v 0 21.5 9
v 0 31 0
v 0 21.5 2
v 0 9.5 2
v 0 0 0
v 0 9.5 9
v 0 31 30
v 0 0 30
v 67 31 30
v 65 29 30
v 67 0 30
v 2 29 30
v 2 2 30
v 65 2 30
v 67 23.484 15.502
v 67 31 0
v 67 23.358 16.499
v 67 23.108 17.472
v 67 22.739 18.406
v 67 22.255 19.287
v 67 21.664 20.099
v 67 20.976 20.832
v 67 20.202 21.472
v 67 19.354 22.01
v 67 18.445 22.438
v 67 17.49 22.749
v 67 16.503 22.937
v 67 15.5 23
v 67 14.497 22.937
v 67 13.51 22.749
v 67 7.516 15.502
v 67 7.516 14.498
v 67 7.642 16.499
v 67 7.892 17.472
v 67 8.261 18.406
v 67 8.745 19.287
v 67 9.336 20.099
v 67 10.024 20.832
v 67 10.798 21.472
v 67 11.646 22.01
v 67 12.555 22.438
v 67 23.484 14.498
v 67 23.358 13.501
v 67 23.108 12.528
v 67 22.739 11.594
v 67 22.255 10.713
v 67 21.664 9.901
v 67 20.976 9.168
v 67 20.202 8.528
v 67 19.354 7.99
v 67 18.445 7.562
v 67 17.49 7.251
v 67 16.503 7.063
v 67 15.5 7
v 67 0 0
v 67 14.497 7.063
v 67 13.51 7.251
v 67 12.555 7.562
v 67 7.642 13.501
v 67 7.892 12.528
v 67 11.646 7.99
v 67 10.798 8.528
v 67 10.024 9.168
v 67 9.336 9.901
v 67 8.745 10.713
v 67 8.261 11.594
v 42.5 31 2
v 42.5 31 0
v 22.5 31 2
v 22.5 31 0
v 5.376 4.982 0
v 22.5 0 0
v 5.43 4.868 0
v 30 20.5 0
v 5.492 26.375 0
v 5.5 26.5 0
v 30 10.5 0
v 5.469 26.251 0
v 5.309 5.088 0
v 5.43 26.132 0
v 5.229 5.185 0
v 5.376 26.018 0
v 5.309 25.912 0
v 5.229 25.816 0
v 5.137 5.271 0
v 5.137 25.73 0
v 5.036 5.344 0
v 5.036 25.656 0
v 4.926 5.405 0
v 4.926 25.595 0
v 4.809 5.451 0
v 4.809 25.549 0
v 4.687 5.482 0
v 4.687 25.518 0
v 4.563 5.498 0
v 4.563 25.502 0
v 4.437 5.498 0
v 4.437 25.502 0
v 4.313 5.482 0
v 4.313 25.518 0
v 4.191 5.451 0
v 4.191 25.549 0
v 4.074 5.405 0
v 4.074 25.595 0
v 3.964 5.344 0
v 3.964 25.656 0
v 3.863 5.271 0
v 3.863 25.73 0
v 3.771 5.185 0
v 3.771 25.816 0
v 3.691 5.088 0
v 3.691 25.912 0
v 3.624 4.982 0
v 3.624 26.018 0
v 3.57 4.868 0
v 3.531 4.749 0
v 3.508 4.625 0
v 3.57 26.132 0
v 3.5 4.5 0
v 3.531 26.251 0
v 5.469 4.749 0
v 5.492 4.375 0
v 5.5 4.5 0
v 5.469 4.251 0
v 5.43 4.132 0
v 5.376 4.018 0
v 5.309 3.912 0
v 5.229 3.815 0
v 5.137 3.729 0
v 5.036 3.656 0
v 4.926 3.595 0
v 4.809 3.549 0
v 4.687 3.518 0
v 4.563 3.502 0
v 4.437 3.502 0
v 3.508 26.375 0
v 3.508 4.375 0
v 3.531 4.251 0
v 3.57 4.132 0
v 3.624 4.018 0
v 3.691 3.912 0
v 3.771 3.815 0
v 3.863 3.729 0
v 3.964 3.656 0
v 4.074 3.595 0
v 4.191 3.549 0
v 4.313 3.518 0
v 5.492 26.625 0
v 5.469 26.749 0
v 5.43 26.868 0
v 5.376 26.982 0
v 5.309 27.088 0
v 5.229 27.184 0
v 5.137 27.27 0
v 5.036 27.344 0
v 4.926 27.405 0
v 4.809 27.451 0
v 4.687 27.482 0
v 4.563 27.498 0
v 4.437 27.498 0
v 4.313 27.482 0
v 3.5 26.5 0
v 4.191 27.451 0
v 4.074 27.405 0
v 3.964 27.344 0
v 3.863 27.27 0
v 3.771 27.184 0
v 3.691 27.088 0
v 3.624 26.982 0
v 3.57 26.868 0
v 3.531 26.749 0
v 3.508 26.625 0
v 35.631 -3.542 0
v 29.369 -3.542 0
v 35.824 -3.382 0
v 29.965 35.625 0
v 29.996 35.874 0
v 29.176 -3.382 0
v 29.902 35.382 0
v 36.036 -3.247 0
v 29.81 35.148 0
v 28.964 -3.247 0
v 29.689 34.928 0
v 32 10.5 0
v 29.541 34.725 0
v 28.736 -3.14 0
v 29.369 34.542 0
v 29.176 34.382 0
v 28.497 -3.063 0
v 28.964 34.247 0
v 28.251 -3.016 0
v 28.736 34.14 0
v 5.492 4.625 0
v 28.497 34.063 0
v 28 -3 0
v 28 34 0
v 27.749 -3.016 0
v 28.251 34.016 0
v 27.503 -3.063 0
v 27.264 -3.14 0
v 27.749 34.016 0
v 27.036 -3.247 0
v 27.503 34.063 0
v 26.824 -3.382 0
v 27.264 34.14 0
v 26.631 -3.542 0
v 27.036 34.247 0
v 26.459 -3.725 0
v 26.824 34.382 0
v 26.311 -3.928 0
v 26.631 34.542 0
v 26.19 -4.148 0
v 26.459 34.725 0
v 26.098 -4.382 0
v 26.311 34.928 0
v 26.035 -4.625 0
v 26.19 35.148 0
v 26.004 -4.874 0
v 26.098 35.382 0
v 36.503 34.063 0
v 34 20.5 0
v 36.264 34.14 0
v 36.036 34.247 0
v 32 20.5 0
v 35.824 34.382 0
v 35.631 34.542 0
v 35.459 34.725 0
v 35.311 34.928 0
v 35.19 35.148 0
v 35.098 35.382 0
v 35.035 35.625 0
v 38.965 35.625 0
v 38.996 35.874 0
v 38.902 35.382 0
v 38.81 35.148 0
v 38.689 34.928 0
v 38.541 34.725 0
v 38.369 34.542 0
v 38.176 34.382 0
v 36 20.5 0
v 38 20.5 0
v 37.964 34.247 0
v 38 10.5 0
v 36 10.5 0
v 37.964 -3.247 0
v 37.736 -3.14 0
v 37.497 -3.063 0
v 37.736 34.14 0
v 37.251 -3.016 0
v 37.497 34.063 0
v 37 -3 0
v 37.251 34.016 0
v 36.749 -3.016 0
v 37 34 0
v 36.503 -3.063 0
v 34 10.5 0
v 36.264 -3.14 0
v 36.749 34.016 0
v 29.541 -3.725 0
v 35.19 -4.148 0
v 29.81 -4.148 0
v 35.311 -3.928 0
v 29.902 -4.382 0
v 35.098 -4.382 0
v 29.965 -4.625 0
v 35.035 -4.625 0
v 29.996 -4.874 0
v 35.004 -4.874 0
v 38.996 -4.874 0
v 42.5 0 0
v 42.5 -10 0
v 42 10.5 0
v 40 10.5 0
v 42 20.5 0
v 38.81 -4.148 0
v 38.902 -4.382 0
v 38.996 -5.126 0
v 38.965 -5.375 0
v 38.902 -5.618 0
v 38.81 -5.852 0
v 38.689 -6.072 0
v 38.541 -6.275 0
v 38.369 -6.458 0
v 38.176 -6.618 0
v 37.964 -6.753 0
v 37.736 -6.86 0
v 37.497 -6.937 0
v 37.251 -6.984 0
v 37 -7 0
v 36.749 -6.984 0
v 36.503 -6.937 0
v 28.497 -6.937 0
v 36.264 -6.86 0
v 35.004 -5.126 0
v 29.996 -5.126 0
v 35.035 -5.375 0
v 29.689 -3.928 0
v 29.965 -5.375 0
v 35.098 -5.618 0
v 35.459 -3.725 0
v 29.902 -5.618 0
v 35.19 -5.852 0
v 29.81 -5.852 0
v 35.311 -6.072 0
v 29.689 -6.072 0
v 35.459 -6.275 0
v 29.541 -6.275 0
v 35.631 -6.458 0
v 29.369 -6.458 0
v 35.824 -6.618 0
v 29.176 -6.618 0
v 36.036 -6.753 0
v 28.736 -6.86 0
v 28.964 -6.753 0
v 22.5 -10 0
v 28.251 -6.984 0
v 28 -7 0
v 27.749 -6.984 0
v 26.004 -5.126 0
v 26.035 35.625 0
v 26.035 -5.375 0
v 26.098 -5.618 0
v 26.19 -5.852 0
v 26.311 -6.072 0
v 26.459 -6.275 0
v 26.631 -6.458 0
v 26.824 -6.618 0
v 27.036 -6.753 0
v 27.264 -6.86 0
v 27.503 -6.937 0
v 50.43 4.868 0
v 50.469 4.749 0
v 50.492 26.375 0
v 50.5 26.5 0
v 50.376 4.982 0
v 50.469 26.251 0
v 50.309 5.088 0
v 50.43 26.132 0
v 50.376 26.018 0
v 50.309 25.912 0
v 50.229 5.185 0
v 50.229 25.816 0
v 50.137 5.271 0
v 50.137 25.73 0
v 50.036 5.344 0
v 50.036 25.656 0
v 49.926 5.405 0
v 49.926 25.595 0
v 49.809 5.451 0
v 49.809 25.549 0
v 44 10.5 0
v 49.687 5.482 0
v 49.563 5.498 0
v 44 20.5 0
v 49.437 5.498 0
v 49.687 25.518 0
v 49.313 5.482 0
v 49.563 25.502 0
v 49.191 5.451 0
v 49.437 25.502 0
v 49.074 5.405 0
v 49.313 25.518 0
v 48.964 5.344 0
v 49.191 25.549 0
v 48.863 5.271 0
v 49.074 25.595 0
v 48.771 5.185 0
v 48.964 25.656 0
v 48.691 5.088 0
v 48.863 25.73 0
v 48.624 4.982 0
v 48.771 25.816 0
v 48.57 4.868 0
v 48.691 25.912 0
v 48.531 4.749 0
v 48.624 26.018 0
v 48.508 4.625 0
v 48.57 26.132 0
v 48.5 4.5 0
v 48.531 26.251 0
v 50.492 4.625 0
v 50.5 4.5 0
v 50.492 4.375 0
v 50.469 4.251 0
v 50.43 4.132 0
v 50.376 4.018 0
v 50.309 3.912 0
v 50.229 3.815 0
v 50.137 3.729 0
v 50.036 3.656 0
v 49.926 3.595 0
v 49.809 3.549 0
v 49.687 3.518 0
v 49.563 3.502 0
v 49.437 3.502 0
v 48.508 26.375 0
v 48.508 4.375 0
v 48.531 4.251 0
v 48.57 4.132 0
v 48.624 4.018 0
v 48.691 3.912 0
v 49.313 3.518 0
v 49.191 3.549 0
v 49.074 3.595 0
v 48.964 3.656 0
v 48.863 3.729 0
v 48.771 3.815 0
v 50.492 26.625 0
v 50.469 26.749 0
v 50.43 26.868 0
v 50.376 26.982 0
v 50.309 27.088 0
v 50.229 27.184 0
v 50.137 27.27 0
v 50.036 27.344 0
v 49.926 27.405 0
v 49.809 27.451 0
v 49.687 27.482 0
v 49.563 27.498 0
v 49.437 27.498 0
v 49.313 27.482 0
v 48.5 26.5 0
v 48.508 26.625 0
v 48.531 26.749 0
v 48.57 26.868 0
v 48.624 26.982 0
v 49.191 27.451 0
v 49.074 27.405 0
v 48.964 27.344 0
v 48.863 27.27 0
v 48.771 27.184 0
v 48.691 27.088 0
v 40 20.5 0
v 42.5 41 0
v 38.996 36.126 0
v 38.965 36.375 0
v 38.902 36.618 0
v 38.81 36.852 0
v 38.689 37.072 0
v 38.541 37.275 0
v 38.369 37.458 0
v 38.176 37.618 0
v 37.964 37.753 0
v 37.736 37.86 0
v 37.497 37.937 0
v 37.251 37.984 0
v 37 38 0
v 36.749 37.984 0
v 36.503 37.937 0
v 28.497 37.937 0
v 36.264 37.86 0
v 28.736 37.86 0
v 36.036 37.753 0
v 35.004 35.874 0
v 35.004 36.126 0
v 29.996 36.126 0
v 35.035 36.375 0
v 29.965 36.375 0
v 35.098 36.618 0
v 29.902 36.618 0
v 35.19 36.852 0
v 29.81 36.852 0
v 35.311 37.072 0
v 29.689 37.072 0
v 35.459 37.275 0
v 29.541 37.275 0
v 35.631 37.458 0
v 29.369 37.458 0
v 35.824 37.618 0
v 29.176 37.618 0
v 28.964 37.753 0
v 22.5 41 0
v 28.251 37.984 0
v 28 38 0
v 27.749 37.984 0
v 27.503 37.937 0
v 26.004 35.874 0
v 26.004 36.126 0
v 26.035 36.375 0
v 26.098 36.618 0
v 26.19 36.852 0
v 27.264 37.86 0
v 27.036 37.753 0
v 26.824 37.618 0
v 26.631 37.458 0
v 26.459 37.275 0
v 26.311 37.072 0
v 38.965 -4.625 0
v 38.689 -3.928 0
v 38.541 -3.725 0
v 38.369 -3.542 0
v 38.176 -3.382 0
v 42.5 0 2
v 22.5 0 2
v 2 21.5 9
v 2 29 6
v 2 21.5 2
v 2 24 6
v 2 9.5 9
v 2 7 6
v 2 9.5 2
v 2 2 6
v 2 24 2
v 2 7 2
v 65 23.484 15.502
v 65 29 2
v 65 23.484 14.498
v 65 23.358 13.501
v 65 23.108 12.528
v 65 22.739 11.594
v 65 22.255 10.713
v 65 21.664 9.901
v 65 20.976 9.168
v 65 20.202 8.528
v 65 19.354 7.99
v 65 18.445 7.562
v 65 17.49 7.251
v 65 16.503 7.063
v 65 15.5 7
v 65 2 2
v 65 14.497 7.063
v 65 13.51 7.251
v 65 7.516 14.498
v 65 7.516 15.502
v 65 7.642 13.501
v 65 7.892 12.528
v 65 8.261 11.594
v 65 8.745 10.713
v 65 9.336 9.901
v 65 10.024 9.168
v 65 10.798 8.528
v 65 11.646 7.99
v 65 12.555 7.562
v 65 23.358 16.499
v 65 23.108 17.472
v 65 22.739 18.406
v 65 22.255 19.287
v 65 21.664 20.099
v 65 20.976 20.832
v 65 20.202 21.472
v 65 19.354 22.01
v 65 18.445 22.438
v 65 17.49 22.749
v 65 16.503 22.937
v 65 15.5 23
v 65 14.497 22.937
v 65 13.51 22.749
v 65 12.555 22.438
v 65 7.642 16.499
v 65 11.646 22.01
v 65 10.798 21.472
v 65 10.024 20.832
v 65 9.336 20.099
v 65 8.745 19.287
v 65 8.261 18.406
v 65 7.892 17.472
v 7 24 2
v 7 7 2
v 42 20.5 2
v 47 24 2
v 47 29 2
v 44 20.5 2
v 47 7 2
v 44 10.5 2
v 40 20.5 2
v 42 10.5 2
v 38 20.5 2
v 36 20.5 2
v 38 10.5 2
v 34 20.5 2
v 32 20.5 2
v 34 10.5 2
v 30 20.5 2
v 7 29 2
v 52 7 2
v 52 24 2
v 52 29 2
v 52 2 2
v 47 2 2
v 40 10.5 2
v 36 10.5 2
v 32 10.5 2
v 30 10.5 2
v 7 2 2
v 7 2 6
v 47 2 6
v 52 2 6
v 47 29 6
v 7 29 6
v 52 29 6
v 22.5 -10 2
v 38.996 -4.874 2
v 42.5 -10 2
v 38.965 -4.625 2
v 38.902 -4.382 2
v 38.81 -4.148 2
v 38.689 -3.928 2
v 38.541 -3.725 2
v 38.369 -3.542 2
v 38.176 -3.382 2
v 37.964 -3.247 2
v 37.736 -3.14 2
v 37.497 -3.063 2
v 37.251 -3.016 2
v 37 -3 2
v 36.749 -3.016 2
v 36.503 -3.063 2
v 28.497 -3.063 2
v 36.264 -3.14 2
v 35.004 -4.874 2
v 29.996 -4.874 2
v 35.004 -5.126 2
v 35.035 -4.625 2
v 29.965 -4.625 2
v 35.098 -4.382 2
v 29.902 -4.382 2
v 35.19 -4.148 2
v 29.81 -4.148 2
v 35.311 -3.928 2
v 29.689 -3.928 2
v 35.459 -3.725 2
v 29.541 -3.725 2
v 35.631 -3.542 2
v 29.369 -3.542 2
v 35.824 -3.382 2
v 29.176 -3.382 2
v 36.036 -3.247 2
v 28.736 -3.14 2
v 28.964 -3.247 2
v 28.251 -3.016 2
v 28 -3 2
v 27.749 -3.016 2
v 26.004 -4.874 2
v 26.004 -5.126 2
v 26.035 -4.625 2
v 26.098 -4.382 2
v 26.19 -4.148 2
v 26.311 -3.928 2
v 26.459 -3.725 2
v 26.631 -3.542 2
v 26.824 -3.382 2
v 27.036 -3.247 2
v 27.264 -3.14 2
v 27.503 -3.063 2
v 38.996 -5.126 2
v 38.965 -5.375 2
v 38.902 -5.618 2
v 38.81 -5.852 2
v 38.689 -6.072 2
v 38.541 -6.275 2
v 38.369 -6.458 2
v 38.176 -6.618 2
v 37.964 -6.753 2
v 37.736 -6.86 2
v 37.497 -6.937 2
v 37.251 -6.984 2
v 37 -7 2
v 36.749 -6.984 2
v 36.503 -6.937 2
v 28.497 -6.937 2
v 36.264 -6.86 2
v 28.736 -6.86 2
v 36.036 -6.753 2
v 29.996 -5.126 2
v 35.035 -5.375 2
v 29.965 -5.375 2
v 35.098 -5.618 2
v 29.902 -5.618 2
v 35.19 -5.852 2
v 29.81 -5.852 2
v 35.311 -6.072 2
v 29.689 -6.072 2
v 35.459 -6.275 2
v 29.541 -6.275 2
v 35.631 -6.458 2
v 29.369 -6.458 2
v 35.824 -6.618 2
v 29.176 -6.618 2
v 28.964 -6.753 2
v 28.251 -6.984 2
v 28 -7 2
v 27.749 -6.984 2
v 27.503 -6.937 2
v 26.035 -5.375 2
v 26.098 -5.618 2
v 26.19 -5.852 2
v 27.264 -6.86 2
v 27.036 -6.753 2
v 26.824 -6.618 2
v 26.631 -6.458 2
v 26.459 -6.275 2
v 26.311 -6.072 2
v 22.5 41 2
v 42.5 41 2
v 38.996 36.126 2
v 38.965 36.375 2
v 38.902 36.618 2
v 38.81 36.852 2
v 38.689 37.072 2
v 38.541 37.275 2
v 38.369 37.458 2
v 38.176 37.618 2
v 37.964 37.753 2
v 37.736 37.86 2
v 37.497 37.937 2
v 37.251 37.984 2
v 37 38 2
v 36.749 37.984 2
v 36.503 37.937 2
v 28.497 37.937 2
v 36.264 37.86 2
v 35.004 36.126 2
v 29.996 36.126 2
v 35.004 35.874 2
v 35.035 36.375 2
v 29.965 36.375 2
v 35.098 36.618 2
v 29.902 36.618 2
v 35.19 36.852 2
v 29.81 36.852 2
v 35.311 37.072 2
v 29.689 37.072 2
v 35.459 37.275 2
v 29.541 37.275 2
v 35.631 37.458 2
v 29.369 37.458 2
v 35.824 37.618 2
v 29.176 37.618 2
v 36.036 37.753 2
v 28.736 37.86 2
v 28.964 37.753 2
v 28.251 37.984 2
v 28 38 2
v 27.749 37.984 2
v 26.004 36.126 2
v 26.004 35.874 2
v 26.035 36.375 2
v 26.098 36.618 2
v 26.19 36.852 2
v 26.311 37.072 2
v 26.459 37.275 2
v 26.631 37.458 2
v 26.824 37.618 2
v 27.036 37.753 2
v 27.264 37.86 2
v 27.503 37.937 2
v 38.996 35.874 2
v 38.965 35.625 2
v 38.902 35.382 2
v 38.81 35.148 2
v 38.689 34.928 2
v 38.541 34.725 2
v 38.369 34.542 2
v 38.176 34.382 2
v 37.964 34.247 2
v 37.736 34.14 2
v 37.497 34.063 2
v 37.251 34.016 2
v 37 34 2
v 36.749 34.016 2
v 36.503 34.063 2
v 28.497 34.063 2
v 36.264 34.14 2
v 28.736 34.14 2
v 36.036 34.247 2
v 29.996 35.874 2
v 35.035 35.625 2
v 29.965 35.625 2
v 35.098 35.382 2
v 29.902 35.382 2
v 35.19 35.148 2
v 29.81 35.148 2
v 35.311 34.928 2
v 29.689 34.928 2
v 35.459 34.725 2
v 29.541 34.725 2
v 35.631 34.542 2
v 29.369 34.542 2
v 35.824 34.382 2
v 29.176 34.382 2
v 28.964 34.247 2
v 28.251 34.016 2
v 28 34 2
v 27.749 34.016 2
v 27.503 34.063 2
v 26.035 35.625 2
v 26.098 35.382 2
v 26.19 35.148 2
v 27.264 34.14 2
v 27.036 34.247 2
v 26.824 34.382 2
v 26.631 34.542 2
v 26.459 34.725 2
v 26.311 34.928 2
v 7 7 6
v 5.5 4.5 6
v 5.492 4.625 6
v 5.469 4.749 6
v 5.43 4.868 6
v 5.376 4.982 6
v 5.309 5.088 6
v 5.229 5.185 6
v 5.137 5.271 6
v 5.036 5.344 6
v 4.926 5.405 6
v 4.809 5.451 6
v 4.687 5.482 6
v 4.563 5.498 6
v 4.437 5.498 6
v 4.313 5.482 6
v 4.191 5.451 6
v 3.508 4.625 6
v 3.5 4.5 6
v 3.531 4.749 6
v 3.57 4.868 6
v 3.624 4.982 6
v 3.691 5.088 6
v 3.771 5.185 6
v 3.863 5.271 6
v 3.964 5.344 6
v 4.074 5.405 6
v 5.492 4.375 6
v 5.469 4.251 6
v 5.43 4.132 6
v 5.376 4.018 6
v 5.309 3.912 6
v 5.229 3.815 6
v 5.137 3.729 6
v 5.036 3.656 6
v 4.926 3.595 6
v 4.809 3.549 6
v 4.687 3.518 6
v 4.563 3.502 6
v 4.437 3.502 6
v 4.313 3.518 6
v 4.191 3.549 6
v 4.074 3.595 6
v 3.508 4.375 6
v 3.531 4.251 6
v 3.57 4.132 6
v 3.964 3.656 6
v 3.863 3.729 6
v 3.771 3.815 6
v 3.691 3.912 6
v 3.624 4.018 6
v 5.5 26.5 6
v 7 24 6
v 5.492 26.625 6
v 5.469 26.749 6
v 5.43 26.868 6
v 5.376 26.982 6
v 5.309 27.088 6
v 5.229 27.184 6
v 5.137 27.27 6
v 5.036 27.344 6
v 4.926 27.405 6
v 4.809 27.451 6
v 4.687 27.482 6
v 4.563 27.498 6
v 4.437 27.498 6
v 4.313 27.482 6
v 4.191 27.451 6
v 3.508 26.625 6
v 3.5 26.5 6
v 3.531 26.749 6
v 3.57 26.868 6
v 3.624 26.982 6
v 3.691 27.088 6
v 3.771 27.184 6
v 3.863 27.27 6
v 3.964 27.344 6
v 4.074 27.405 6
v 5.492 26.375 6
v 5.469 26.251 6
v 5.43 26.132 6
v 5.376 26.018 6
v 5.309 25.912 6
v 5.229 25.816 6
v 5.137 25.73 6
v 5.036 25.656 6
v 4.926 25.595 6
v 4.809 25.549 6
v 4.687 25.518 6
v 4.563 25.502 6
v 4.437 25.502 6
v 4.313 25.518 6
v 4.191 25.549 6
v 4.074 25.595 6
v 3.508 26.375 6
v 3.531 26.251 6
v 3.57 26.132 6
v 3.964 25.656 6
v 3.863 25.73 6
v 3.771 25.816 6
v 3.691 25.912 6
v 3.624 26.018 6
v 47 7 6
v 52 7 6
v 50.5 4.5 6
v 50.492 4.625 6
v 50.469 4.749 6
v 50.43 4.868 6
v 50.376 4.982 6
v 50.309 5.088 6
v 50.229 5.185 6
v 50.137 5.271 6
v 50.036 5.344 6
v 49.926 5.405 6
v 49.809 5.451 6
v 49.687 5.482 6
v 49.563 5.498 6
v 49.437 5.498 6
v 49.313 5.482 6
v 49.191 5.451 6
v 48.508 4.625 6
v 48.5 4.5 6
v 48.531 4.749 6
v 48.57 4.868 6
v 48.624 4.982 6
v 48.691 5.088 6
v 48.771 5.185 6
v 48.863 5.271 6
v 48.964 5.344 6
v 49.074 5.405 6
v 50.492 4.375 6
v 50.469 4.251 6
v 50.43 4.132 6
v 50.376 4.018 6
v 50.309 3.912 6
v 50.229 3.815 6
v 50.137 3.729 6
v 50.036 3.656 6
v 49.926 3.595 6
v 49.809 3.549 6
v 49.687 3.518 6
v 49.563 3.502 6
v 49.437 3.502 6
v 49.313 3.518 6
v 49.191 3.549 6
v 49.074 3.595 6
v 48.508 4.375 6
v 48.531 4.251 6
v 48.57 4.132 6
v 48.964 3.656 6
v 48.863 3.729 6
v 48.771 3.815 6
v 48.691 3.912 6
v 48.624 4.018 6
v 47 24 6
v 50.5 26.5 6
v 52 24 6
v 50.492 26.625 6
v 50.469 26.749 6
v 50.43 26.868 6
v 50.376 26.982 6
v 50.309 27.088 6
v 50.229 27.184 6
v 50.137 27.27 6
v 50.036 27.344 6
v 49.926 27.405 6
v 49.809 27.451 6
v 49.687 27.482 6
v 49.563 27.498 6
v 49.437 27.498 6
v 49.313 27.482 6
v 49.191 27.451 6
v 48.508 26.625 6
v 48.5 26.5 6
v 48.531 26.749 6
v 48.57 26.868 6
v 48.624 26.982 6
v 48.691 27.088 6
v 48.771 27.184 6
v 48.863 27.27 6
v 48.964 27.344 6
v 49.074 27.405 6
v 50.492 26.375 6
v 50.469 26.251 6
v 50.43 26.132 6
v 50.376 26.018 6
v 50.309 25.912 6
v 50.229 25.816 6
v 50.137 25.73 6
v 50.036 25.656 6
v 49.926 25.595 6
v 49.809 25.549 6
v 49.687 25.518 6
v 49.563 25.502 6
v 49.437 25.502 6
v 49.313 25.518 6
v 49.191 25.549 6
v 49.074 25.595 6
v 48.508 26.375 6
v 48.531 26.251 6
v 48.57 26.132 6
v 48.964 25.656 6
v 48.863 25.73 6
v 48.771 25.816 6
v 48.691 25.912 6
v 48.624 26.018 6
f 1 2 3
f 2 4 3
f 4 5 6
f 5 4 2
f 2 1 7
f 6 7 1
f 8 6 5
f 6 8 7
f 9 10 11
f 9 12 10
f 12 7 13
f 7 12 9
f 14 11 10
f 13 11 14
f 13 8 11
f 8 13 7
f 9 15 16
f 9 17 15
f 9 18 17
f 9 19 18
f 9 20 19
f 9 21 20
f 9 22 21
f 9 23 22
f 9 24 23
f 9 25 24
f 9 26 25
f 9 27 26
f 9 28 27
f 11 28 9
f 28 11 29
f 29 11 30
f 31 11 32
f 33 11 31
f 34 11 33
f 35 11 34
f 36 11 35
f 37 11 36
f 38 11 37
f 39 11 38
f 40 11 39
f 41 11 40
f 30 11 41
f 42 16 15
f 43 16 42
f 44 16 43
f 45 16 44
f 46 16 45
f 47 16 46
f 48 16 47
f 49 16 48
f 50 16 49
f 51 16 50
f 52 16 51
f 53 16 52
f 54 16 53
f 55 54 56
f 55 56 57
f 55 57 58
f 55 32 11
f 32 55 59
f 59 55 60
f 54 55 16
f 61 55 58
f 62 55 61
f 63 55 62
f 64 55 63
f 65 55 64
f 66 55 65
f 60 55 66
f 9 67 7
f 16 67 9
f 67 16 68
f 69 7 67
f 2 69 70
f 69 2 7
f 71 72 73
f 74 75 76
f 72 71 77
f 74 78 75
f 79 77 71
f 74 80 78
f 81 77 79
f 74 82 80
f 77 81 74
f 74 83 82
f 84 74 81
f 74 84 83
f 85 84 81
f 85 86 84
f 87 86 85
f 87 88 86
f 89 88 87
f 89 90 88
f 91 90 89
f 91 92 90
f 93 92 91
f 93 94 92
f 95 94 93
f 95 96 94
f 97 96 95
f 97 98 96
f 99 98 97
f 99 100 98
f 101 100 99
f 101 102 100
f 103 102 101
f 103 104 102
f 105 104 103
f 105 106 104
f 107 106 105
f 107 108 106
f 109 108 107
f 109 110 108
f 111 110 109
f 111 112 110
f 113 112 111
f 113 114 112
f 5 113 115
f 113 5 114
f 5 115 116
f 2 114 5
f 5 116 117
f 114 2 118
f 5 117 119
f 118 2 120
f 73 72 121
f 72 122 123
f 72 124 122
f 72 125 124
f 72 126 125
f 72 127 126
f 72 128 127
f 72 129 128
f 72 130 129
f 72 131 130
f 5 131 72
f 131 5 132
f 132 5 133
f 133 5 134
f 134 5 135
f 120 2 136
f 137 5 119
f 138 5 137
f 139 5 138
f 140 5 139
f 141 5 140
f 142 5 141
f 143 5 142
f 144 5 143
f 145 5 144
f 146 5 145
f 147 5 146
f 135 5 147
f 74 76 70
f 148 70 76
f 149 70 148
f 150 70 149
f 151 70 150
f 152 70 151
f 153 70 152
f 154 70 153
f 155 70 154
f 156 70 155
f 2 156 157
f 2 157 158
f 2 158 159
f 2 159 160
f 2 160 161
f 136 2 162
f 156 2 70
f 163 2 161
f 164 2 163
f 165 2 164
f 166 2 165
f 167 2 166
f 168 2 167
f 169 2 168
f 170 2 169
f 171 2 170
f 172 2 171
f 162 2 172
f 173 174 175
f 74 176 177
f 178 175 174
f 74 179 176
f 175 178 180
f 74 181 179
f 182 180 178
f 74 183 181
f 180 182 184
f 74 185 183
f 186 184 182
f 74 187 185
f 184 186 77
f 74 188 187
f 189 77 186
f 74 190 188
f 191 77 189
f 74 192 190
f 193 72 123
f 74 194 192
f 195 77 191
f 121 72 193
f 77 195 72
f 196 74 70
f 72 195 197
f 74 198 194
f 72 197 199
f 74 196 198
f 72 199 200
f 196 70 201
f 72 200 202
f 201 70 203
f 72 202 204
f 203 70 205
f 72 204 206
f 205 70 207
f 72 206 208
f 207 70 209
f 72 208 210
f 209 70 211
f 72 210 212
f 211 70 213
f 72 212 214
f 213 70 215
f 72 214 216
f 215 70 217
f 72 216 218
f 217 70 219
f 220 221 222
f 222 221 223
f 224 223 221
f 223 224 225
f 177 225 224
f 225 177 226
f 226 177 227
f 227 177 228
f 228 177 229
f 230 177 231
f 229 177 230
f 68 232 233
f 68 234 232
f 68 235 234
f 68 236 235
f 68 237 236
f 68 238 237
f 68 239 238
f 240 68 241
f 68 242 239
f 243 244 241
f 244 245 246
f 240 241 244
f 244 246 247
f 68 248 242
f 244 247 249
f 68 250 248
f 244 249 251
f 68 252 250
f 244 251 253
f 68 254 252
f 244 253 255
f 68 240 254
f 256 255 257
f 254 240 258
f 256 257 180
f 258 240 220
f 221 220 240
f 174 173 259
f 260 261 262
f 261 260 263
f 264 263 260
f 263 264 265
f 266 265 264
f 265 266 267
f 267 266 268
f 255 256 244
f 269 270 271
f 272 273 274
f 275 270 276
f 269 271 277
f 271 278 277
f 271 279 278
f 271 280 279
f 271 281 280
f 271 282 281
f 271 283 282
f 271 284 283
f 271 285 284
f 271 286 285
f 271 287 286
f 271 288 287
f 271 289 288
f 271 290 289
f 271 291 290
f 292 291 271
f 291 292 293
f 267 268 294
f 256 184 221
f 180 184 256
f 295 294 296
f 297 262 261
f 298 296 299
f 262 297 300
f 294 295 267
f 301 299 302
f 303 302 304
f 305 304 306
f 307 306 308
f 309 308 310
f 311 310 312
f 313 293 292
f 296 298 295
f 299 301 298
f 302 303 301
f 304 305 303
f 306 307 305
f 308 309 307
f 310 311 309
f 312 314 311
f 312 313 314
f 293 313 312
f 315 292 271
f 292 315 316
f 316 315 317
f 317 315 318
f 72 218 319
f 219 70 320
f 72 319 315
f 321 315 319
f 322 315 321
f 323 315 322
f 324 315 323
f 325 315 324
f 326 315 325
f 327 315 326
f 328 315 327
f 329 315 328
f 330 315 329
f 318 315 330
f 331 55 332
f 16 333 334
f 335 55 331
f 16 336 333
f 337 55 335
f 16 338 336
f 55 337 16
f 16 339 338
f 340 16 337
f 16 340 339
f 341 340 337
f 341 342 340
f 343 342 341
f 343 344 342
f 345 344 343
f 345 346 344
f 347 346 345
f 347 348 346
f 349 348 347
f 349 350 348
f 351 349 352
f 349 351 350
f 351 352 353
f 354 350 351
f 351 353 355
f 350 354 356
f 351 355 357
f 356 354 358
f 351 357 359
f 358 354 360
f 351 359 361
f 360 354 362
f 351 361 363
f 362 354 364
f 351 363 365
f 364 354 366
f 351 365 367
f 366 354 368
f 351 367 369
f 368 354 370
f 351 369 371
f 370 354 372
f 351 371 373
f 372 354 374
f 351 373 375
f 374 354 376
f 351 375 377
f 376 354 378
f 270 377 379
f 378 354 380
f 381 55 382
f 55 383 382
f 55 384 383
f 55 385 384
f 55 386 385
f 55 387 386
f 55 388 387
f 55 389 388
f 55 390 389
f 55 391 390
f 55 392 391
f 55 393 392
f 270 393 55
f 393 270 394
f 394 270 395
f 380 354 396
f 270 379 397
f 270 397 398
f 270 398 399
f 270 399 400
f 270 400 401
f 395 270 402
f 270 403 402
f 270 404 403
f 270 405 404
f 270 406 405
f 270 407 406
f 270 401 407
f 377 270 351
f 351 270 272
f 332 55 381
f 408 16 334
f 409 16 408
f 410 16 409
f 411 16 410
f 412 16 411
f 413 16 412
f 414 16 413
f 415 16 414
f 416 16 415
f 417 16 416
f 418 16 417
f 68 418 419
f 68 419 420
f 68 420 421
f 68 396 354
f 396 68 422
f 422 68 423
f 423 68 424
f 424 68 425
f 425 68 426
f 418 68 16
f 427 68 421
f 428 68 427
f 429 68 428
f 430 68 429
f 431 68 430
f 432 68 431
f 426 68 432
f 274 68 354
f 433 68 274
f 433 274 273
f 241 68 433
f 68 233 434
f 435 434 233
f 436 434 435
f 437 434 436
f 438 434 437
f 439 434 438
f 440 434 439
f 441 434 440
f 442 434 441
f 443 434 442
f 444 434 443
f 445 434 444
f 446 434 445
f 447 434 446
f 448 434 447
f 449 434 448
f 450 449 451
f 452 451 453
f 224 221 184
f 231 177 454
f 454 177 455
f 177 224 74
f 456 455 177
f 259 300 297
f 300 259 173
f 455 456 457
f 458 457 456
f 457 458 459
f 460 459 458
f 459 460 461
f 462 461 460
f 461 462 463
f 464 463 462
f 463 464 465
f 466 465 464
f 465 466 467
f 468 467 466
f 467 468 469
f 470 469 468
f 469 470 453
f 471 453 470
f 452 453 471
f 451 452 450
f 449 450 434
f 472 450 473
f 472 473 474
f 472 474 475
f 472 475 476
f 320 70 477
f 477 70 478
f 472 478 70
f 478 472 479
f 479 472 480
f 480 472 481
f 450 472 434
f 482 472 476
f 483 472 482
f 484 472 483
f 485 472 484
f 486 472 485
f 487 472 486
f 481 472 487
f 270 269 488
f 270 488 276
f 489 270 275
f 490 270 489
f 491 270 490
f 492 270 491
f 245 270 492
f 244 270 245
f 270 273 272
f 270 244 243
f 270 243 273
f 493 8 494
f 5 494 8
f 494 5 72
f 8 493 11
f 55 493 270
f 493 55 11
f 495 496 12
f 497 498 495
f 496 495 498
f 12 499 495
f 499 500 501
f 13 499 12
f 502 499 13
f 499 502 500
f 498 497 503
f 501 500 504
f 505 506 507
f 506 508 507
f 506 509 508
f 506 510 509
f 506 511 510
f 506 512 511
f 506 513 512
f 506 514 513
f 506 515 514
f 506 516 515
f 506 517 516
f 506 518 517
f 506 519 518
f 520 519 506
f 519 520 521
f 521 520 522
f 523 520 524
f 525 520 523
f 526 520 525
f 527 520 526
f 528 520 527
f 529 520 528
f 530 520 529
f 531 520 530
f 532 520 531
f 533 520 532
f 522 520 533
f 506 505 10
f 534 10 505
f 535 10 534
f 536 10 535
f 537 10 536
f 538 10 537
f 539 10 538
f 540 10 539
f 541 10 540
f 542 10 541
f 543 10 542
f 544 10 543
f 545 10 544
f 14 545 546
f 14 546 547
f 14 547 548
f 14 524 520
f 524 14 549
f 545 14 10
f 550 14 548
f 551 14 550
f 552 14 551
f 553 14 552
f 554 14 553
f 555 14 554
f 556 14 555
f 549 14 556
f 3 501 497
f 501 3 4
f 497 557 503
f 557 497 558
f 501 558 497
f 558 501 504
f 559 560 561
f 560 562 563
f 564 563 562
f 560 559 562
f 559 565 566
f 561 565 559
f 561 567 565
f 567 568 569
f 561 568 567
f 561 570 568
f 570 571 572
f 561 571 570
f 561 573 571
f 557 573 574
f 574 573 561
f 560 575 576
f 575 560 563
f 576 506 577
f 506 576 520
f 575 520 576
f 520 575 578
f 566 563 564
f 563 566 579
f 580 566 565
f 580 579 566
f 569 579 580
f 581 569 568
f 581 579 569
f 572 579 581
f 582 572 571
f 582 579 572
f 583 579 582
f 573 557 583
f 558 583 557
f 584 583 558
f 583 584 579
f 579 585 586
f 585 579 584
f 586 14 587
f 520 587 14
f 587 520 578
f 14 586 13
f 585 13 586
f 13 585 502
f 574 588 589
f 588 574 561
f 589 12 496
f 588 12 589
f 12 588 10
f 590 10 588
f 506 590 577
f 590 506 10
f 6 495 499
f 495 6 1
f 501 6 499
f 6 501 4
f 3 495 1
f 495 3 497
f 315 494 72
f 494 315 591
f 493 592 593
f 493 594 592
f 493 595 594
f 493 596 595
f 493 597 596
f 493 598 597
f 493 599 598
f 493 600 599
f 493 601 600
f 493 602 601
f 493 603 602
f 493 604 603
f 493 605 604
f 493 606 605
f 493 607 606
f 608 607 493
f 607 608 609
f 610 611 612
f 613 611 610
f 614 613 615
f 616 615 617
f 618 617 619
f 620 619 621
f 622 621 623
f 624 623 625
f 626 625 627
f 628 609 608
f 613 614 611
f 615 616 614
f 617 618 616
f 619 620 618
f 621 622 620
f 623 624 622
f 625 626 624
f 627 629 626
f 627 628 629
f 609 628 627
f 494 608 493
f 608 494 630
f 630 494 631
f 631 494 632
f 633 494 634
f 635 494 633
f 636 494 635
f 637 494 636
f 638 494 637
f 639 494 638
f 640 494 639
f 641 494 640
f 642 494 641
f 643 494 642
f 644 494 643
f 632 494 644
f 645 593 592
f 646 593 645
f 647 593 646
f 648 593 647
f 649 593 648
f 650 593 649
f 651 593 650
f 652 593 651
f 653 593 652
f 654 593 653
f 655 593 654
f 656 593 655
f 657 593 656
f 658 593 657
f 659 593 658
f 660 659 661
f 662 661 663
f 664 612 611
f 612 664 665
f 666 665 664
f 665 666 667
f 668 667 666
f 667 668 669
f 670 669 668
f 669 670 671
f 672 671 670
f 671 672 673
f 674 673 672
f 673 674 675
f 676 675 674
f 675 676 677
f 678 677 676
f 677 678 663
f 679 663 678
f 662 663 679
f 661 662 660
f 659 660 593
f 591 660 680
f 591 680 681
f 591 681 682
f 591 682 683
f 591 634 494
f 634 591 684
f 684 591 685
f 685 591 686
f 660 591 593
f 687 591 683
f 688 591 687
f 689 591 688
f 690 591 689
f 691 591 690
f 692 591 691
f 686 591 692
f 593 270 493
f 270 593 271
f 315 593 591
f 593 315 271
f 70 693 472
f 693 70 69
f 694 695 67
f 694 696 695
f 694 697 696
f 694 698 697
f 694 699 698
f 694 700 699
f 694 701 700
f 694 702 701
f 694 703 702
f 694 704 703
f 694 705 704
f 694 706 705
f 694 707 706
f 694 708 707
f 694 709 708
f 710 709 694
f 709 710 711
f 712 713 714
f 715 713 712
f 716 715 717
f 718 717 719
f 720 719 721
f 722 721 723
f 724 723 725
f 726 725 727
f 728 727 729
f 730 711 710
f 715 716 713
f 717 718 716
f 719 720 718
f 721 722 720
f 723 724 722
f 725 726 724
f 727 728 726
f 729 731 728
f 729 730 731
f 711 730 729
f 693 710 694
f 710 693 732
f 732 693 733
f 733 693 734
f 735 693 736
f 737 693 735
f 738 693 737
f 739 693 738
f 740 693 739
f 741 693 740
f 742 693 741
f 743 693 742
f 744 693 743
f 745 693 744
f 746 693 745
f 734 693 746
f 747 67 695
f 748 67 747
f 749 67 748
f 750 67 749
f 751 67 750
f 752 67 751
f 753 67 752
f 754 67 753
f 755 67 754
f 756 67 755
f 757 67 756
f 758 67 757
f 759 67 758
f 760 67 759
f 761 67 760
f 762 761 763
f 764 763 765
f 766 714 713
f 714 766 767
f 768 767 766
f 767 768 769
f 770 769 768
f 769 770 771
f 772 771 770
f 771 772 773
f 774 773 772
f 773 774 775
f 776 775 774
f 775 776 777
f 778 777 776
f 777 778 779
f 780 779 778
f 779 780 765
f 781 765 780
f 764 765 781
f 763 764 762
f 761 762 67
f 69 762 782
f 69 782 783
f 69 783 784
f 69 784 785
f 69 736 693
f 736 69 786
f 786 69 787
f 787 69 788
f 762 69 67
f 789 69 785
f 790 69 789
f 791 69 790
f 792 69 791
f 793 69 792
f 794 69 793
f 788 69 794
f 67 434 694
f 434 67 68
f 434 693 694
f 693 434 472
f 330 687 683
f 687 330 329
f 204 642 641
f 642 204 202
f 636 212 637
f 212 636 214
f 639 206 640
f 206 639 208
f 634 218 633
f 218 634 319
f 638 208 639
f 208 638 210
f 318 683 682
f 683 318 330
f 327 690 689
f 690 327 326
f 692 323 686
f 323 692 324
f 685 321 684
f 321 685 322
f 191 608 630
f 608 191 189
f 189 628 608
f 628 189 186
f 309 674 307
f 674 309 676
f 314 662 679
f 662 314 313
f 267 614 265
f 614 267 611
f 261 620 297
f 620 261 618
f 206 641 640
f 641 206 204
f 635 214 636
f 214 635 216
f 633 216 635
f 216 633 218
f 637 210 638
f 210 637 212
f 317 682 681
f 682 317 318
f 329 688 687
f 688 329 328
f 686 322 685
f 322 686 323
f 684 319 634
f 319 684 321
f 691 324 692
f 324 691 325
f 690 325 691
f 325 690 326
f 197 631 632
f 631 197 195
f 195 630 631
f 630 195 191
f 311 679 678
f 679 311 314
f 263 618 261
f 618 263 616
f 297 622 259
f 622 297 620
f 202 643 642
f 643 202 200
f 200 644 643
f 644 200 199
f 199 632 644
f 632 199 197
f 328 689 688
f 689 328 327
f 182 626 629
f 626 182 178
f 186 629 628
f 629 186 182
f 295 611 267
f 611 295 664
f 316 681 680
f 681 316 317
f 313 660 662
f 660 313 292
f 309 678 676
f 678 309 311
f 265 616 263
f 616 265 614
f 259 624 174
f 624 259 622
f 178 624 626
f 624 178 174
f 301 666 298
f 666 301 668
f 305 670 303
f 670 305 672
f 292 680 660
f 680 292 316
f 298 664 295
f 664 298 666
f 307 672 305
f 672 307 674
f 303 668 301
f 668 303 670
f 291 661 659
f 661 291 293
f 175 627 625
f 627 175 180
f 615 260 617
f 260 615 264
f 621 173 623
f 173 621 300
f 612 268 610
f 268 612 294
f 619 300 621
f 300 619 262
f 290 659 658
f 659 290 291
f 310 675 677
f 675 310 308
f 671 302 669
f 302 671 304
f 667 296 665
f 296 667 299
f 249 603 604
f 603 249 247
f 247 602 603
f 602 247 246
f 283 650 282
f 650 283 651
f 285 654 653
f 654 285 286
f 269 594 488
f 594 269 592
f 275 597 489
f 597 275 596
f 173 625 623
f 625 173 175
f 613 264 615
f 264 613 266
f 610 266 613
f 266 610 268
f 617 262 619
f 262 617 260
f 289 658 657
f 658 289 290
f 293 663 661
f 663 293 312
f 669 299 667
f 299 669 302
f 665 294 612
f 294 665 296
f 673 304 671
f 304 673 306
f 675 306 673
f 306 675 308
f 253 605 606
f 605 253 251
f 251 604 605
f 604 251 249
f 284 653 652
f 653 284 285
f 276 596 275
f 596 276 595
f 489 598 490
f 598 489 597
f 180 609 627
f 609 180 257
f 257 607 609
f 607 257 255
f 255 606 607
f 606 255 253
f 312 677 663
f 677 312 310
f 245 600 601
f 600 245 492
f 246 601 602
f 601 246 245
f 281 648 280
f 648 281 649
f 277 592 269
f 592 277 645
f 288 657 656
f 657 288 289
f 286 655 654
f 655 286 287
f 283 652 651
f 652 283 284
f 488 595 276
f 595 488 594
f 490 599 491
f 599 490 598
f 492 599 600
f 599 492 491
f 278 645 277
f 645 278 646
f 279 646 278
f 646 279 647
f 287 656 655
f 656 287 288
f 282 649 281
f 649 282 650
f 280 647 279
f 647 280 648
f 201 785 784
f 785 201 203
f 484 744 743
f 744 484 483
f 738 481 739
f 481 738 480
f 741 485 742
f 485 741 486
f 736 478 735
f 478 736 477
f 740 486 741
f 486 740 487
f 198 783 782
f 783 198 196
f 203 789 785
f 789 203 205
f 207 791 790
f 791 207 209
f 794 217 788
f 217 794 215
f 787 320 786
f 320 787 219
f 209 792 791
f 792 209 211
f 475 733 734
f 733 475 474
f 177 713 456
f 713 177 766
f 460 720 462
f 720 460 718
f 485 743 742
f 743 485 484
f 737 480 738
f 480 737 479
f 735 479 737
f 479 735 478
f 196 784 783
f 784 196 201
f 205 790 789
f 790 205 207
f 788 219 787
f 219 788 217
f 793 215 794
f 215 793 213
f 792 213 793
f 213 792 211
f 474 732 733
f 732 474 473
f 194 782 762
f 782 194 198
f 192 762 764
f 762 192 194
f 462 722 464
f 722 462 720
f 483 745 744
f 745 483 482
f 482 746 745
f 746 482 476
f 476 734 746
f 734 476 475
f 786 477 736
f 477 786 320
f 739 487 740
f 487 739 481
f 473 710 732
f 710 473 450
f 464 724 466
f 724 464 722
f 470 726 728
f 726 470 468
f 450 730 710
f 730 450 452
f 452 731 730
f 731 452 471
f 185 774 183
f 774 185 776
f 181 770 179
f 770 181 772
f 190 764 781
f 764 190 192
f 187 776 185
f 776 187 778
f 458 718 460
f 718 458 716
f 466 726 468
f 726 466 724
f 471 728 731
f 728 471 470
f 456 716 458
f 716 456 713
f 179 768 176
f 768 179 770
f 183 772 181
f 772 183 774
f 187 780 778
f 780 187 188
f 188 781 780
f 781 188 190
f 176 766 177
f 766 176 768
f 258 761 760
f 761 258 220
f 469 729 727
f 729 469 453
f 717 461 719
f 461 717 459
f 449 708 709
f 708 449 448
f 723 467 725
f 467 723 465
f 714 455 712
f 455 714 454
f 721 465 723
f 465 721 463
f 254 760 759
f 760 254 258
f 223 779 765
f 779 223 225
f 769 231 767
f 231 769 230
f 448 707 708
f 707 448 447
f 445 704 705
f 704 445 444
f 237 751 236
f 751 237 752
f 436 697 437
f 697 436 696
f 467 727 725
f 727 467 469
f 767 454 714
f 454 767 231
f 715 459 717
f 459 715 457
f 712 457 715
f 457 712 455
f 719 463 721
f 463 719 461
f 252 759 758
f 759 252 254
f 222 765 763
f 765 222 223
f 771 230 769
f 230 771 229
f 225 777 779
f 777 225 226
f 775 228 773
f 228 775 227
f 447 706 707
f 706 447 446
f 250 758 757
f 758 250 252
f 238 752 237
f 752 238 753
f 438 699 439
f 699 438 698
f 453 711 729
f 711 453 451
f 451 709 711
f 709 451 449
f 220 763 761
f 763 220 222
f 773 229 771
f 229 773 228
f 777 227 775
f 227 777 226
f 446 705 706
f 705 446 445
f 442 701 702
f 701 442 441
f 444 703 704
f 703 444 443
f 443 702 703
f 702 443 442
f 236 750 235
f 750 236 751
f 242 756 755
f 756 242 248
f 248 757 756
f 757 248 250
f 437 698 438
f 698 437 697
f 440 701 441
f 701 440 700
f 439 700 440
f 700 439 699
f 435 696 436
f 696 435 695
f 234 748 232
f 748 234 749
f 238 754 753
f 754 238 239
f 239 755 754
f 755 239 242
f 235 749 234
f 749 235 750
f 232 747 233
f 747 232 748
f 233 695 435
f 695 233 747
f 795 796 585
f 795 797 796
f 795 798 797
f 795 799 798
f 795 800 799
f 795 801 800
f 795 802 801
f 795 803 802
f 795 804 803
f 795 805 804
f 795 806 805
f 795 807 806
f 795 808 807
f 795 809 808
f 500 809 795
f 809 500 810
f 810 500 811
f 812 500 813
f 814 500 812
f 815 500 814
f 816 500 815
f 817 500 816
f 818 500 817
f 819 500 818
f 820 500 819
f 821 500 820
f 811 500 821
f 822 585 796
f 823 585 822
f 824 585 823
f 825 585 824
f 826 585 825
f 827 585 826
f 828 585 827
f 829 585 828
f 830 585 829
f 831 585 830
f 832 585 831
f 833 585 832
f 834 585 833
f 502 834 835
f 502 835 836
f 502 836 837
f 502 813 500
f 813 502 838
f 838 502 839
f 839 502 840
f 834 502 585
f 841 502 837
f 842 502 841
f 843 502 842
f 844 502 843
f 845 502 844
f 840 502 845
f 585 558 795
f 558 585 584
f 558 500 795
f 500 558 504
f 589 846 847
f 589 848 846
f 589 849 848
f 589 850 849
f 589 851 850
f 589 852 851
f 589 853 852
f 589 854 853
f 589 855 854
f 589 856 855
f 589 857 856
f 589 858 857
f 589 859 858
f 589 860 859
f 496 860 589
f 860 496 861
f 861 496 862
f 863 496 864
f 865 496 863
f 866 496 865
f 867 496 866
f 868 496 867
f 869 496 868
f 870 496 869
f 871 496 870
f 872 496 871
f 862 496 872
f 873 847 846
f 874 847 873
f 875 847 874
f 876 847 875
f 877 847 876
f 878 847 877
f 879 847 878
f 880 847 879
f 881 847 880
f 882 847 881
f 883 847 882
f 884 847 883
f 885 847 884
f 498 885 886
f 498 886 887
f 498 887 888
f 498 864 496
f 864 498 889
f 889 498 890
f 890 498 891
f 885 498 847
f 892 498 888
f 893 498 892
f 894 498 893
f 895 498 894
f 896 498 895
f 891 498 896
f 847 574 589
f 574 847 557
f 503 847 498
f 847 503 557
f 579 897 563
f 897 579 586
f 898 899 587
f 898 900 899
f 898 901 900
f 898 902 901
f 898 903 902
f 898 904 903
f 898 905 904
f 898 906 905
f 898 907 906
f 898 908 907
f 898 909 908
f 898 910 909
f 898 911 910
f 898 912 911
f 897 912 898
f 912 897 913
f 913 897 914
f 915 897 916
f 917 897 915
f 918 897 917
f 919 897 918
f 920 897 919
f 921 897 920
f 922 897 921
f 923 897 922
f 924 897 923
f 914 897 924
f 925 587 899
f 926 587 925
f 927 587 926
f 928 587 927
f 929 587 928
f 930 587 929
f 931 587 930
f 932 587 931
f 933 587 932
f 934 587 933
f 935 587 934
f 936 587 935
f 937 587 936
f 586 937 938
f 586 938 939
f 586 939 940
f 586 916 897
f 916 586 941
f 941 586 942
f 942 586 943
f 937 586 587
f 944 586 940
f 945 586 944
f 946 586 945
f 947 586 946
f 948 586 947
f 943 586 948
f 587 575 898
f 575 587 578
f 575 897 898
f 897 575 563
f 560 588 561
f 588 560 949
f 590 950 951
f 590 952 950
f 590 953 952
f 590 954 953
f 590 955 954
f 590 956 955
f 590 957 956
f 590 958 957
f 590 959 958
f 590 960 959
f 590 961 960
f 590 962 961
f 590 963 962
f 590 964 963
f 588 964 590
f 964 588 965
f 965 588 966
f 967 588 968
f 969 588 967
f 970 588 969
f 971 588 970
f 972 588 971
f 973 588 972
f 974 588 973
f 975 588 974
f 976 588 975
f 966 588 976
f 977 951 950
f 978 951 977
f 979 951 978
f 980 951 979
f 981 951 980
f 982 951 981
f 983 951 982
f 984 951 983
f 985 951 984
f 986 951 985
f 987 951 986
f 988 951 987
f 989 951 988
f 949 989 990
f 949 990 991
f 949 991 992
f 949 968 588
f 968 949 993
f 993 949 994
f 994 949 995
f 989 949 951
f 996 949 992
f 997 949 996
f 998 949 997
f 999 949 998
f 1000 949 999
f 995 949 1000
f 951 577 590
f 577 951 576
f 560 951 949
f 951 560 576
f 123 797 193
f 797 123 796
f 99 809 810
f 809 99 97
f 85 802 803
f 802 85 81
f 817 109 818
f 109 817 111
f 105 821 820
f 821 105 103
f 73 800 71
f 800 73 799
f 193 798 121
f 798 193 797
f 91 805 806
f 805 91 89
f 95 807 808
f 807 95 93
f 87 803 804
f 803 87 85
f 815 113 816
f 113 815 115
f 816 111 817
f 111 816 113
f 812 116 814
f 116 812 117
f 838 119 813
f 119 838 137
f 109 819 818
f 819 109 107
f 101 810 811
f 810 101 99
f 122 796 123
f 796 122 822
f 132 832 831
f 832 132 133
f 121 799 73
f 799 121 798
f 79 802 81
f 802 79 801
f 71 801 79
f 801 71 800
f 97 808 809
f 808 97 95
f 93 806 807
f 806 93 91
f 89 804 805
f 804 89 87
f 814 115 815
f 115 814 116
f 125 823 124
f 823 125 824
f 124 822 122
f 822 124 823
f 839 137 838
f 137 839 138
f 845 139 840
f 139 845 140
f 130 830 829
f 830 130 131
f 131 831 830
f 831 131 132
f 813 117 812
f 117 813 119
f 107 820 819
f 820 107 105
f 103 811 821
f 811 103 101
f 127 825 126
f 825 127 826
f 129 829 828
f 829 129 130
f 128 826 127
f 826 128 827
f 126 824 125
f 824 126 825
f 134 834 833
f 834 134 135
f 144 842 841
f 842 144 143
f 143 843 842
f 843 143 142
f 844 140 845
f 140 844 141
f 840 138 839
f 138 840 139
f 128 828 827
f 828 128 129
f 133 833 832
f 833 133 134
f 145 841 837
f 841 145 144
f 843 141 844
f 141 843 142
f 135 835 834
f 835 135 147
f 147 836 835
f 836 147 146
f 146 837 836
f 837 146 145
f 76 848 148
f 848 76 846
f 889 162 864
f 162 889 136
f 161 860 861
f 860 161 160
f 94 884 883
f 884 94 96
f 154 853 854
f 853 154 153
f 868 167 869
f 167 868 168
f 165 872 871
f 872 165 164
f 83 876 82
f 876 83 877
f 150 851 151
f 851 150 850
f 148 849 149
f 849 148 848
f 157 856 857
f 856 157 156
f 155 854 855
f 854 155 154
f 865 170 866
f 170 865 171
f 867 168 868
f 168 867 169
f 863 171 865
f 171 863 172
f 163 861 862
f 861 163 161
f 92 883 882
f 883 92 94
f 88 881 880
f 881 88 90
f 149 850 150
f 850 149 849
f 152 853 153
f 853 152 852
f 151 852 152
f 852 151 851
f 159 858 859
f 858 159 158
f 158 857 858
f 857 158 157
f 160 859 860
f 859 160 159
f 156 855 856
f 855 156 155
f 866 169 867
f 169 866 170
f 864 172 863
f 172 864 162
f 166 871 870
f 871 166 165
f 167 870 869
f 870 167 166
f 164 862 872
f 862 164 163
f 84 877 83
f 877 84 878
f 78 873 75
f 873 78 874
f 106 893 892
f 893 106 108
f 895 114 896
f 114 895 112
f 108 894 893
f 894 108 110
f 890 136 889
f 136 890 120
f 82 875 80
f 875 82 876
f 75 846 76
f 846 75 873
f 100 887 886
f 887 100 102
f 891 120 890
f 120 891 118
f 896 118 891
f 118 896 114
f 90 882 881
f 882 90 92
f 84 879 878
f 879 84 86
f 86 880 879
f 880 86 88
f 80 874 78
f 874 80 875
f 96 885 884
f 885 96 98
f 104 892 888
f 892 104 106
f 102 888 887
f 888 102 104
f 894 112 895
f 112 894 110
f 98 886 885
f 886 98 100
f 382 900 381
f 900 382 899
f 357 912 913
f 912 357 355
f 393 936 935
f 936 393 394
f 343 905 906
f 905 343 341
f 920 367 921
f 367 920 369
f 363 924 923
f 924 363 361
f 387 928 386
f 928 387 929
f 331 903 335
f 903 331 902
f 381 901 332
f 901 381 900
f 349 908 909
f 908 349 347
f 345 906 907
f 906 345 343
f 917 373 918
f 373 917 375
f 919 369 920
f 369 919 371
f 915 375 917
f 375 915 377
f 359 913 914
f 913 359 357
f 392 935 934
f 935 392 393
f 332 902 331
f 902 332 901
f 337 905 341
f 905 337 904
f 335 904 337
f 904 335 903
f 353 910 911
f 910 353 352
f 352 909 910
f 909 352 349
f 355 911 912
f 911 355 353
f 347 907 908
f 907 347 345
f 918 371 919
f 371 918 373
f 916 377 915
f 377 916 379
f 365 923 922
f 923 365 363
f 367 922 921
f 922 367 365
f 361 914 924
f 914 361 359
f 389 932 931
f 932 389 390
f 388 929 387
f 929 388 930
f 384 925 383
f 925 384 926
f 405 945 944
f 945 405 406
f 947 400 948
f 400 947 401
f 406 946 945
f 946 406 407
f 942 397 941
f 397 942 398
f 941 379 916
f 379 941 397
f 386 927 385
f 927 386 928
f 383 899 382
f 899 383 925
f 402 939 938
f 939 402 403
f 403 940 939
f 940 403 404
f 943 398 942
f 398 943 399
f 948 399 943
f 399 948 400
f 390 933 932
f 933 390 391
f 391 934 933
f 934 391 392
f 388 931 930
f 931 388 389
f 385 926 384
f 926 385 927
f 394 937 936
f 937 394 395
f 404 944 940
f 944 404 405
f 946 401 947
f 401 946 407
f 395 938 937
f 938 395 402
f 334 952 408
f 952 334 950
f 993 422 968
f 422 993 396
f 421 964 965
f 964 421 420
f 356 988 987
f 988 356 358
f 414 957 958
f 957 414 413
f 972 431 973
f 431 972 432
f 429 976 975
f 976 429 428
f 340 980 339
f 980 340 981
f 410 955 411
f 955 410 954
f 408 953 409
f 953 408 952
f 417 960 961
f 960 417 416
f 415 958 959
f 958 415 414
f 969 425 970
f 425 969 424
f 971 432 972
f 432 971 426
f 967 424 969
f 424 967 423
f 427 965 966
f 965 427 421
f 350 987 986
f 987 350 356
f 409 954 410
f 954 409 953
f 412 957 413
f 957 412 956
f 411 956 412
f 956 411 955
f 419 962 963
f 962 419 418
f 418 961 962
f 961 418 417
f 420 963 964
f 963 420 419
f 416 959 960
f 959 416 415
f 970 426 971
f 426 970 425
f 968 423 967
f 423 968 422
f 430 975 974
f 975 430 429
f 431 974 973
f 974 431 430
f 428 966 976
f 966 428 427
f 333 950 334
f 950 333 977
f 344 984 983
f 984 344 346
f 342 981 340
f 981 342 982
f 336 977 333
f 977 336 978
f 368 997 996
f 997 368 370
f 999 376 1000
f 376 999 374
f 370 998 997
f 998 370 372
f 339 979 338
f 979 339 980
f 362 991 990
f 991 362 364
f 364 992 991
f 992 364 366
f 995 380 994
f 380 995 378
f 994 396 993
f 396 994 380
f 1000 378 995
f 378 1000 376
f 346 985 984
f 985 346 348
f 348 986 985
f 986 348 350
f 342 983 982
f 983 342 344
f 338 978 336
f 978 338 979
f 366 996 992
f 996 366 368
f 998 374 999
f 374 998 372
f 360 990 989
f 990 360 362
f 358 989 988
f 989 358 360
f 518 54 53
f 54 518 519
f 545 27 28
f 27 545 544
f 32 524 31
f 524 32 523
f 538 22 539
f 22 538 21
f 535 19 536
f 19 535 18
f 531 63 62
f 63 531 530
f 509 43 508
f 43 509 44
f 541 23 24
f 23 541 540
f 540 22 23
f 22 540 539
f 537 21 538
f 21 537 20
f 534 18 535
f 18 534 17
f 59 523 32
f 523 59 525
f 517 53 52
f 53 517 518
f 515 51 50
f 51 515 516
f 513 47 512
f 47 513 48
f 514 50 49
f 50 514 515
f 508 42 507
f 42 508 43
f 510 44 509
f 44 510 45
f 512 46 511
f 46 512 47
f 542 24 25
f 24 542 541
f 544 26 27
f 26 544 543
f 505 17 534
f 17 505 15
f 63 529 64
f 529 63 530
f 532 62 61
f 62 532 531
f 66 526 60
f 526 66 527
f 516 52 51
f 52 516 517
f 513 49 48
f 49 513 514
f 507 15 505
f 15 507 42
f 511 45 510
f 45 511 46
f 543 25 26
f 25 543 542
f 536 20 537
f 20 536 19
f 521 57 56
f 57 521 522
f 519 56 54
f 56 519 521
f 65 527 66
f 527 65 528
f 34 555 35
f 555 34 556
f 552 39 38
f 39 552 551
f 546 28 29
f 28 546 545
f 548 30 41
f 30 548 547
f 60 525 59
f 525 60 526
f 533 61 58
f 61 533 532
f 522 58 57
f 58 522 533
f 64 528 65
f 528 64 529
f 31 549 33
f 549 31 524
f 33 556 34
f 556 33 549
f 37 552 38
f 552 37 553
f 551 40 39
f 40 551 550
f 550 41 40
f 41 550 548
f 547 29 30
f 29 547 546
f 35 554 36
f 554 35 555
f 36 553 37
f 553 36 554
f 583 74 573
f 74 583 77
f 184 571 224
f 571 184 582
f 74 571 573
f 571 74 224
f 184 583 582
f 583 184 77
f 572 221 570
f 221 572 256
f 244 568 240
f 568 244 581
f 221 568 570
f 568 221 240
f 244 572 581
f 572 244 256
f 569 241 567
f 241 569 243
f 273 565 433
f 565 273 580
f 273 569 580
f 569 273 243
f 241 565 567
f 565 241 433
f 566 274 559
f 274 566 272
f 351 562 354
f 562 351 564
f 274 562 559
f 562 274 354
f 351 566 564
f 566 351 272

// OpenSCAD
$fn=50;

// ESP8266   49mm x 26mm x 14mm

difference() {
	union() {
		difference(){
			//Korpus
			cube([67,31,30]);
			translate([2,2,2]) cube([63,27,28]);
			translate([0,9.5,2]) cube([2,12,7]);
		}

		//Platinen Abstandhalter
		translate([2,2,2]) cube([5,5,4]);
		translate([2,24,2]) cube([5,5,4]);
		translate([47,2,2]) cube([5,5,4]);
		translate([47,24,2]) cube([5,5,4]);
	}

	//Schraubenlöcher
	translate([4.5,4.5,0]) cylinder(6,2/2,2/2);
	translate([4.5,26.5,0]) cylinder(6,2/2,2/2);
	translate([49.5,4.5,0]) cylinder(6,2/2,2/2);
	translate([49.5,26.5,0]) cylinder(6,2/2,2/2);
       //Loch DS18B20 Schraubverschluss
	translate([65,15.5,15]) rotate(90, v=[0,1,0]) cylinder(3,16/2,16/2);


	//Lüftung ESP8266
	translate([30,10.5,0]) cube([2,10,2]);
	translate([34,10.5,0]) cube([2,10,2]);
	translate([38,10.5,0]) cube([2,10,2]);
	translate([42,10.5,0]) cube([2,10,2]);
}

//Halterung
difference() {
	union() {
		translate([22.5,-10,0]) cube([20,10,2]);
		translate([22.5,31,0]) cube([20,10,2]);
	}
	translate([28,-5,0]) rotate(90,v=[0,0,1]) cylinder(2,4/2,4/2);
	translate([37,-5,0]) rotate(90,v=[0,0,1]) cylinder(2,4/2,4/2);
	translate([28,36,0]) rotate(90,v=[0,0,1]) cylinder(2,4/2,4/2);
	translate([37,36,0]) rotate(90,v=[0,0,1]) cylinder(2,4/2,4/2);
}
